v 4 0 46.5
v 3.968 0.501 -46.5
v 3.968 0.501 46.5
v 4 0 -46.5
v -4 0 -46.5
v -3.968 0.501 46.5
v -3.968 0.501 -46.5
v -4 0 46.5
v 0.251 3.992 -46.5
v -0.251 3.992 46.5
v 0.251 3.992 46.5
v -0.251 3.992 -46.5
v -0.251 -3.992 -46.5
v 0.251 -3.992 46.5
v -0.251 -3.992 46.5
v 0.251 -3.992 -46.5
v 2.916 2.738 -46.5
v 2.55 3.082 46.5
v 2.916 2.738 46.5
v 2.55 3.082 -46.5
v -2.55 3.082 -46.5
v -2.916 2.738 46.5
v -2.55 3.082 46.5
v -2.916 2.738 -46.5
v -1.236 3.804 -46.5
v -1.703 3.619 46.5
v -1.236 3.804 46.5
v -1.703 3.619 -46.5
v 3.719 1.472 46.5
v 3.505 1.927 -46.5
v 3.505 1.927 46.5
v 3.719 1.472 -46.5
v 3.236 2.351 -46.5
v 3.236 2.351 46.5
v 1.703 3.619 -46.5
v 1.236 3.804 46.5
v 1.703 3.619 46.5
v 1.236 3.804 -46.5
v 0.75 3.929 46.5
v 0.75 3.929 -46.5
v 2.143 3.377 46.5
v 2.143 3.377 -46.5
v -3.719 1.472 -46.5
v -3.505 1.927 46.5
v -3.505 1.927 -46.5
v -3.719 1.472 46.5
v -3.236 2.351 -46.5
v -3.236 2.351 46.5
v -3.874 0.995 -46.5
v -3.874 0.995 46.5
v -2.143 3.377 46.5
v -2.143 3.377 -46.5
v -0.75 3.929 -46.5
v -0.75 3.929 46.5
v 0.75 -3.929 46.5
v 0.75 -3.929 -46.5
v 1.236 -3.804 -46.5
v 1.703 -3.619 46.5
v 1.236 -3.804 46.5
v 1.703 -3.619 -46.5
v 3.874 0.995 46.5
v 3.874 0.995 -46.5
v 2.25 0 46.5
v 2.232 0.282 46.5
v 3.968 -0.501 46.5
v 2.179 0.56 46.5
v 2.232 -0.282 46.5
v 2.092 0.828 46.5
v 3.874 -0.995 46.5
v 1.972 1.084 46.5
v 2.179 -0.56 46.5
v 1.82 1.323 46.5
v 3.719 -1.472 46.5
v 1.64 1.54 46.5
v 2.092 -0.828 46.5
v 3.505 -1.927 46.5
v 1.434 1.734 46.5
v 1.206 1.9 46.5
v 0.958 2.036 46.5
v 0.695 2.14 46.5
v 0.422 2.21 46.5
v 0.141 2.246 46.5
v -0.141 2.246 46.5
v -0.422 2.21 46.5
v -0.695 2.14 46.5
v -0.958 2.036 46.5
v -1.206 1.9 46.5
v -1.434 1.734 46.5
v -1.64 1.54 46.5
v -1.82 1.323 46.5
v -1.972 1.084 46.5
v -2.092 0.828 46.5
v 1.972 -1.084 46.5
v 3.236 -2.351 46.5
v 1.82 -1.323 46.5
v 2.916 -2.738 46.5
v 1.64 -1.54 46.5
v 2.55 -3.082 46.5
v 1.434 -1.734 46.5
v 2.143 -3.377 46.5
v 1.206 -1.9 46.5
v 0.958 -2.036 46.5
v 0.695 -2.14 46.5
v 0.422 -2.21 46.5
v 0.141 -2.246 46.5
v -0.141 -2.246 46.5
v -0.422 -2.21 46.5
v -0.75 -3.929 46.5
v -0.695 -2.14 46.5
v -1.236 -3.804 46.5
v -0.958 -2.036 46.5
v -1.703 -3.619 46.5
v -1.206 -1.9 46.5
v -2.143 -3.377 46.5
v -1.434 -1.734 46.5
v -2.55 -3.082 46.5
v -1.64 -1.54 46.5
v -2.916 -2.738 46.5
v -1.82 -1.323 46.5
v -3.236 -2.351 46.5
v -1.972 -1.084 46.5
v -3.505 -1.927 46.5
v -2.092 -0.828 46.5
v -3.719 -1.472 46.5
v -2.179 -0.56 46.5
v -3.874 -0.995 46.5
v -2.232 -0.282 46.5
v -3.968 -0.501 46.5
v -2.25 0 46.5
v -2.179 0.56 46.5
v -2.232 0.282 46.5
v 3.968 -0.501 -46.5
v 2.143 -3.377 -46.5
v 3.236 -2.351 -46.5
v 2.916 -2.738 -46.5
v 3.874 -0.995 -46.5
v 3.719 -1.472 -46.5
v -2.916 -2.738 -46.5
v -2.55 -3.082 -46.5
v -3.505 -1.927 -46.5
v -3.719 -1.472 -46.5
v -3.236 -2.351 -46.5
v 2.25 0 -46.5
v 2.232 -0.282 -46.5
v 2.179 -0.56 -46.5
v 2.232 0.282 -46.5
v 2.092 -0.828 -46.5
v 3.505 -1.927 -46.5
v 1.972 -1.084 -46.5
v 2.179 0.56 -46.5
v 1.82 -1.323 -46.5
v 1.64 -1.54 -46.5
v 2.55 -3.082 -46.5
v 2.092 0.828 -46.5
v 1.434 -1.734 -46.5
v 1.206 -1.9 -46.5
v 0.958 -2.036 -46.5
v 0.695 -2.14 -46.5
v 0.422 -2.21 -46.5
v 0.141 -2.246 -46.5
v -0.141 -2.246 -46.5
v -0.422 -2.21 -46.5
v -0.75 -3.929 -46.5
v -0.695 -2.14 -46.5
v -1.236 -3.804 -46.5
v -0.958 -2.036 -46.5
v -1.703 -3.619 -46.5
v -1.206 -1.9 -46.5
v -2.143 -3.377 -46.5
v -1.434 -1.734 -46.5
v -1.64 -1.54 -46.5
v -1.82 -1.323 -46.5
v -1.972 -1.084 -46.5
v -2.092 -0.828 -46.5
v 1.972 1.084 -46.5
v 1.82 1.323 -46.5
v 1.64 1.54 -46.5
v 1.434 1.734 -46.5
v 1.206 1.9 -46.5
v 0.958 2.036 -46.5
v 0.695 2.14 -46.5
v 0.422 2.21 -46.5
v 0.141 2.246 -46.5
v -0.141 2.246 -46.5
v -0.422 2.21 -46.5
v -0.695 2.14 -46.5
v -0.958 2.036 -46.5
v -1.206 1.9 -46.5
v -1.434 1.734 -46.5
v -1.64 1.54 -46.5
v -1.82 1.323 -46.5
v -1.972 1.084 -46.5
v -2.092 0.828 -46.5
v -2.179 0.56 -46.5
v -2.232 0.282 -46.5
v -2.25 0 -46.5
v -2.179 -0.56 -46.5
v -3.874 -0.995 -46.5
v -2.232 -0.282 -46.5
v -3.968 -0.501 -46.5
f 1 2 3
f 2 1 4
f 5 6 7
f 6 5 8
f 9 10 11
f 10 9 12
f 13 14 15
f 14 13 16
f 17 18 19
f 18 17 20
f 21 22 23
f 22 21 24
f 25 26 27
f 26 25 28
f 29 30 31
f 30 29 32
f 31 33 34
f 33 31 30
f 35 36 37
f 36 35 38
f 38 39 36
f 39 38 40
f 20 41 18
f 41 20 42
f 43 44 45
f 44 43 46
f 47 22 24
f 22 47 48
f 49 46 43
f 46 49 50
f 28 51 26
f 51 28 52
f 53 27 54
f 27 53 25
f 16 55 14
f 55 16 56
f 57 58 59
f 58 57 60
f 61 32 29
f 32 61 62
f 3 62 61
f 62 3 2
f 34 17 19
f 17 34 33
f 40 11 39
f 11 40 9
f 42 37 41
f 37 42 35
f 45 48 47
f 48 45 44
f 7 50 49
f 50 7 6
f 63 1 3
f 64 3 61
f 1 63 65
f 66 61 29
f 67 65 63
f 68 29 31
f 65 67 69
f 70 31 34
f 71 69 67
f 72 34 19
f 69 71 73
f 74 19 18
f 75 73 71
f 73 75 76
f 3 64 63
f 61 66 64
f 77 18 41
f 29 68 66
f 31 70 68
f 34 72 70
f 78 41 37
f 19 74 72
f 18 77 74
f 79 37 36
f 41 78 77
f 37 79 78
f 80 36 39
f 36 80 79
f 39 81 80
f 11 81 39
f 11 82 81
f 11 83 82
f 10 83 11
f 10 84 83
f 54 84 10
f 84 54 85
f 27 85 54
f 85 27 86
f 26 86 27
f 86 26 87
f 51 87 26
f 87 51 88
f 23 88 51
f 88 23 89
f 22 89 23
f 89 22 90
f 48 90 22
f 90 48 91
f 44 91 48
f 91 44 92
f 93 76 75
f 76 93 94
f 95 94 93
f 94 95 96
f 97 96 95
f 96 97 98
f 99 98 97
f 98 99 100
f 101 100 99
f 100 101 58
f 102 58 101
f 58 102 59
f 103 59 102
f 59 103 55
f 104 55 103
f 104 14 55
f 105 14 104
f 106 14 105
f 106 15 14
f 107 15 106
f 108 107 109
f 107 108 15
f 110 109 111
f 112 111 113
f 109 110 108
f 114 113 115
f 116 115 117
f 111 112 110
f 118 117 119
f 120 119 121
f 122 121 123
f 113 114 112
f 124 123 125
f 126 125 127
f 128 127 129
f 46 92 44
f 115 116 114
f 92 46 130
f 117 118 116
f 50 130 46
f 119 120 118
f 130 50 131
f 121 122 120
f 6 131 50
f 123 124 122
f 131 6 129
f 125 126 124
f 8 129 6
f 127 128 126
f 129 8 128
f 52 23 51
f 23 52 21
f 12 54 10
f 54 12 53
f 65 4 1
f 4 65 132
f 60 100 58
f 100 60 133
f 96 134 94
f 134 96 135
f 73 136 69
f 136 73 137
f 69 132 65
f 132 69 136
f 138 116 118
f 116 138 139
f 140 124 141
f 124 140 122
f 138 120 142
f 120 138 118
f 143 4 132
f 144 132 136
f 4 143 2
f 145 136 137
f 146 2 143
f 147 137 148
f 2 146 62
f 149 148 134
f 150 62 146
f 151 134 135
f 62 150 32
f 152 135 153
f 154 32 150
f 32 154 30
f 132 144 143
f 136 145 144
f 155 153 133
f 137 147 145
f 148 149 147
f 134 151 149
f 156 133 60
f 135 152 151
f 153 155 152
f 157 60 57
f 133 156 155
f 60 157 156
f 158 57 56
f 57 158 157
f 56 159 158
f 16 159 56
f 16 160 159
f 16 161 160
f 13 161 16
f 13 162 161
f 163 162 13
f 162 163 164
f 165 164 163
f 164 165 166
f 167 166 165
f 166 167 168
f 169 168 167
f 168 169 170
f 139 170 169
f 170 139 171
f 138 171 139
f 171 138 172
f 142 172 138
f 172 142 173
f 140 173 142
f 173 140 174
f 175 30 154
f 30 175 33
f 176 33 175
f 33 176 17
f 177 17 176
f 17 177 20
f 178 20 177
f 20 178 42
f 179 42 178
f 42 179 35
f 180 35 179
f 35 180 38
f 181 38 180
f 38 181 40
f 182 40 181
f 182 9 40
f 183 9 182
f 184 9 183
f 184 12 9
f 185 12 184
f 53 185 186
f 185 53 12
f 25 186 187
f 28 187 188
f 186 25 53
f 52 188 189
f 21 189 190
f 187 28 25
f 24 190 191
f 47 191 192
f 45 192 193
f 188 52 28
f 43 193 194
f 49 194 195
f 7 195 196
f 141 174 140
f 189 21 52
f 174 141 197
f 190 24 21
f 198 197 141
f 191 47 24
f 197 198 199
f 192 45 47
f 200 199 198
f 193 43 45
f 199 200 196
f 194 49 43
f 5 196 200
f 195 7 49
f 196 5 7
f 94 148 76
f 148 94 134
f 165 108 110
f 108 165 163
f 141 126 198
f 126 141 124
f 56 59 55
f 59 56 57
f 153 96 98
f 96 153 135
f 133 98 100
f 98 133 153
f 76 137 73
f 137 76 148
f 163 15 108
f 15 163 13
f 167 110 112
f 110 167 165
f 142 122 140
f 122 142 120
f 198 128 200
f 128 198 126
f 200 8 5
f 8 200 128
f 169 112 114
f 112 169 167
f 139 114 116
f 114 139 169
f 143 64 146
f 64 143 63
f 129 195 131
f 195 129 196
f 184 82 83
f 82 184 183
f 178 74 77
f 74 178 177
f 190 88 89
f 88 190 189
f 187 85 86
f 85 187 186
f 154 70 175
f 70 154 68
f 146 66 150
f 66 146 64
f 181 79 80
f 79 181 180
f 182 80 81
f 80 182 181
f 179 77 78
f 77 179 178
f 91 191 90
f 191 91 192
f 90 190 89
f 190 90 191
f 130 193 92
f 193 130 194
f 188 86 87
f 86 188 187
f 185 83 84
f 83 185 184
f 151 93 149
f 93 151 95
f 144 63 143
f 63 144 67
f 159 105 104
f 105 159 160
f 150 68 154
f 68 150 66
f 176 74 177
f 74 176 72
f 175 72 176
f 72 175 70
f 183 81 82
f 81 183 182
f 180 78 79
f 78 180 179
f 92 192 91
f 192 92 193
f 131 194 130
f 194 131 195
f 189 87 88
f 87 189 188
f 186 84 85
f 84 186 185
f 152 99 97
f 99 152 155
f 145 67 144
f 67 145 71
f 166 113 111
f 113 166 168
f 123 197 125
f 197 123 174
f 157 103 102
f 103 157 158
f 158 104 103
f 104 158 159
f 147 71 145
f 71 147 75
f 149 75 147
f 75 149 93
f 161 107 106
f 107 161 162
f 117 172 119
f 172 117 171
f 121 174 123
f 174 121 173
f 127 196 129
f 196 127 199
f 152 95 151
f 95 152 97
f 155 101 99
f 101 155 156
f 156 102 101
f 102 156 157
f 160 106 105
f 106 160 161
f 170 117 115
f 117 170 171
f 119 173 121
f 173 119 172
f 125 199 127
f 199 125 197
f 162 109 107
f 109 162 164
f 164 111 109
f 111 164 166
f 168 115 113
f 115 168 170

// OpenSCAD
$fn = 50;


difference() {
	union() {
		translate(v = [0, 0, -46.5000000000]) {
			cylinder(h = 93, r = 4.0000000000);
		}
	}
	union() {
		translate(v = [0, 0, -100.0000000000]) {
			cylinder(h = 200, r = 2.2500000000);
		}
	}
}
